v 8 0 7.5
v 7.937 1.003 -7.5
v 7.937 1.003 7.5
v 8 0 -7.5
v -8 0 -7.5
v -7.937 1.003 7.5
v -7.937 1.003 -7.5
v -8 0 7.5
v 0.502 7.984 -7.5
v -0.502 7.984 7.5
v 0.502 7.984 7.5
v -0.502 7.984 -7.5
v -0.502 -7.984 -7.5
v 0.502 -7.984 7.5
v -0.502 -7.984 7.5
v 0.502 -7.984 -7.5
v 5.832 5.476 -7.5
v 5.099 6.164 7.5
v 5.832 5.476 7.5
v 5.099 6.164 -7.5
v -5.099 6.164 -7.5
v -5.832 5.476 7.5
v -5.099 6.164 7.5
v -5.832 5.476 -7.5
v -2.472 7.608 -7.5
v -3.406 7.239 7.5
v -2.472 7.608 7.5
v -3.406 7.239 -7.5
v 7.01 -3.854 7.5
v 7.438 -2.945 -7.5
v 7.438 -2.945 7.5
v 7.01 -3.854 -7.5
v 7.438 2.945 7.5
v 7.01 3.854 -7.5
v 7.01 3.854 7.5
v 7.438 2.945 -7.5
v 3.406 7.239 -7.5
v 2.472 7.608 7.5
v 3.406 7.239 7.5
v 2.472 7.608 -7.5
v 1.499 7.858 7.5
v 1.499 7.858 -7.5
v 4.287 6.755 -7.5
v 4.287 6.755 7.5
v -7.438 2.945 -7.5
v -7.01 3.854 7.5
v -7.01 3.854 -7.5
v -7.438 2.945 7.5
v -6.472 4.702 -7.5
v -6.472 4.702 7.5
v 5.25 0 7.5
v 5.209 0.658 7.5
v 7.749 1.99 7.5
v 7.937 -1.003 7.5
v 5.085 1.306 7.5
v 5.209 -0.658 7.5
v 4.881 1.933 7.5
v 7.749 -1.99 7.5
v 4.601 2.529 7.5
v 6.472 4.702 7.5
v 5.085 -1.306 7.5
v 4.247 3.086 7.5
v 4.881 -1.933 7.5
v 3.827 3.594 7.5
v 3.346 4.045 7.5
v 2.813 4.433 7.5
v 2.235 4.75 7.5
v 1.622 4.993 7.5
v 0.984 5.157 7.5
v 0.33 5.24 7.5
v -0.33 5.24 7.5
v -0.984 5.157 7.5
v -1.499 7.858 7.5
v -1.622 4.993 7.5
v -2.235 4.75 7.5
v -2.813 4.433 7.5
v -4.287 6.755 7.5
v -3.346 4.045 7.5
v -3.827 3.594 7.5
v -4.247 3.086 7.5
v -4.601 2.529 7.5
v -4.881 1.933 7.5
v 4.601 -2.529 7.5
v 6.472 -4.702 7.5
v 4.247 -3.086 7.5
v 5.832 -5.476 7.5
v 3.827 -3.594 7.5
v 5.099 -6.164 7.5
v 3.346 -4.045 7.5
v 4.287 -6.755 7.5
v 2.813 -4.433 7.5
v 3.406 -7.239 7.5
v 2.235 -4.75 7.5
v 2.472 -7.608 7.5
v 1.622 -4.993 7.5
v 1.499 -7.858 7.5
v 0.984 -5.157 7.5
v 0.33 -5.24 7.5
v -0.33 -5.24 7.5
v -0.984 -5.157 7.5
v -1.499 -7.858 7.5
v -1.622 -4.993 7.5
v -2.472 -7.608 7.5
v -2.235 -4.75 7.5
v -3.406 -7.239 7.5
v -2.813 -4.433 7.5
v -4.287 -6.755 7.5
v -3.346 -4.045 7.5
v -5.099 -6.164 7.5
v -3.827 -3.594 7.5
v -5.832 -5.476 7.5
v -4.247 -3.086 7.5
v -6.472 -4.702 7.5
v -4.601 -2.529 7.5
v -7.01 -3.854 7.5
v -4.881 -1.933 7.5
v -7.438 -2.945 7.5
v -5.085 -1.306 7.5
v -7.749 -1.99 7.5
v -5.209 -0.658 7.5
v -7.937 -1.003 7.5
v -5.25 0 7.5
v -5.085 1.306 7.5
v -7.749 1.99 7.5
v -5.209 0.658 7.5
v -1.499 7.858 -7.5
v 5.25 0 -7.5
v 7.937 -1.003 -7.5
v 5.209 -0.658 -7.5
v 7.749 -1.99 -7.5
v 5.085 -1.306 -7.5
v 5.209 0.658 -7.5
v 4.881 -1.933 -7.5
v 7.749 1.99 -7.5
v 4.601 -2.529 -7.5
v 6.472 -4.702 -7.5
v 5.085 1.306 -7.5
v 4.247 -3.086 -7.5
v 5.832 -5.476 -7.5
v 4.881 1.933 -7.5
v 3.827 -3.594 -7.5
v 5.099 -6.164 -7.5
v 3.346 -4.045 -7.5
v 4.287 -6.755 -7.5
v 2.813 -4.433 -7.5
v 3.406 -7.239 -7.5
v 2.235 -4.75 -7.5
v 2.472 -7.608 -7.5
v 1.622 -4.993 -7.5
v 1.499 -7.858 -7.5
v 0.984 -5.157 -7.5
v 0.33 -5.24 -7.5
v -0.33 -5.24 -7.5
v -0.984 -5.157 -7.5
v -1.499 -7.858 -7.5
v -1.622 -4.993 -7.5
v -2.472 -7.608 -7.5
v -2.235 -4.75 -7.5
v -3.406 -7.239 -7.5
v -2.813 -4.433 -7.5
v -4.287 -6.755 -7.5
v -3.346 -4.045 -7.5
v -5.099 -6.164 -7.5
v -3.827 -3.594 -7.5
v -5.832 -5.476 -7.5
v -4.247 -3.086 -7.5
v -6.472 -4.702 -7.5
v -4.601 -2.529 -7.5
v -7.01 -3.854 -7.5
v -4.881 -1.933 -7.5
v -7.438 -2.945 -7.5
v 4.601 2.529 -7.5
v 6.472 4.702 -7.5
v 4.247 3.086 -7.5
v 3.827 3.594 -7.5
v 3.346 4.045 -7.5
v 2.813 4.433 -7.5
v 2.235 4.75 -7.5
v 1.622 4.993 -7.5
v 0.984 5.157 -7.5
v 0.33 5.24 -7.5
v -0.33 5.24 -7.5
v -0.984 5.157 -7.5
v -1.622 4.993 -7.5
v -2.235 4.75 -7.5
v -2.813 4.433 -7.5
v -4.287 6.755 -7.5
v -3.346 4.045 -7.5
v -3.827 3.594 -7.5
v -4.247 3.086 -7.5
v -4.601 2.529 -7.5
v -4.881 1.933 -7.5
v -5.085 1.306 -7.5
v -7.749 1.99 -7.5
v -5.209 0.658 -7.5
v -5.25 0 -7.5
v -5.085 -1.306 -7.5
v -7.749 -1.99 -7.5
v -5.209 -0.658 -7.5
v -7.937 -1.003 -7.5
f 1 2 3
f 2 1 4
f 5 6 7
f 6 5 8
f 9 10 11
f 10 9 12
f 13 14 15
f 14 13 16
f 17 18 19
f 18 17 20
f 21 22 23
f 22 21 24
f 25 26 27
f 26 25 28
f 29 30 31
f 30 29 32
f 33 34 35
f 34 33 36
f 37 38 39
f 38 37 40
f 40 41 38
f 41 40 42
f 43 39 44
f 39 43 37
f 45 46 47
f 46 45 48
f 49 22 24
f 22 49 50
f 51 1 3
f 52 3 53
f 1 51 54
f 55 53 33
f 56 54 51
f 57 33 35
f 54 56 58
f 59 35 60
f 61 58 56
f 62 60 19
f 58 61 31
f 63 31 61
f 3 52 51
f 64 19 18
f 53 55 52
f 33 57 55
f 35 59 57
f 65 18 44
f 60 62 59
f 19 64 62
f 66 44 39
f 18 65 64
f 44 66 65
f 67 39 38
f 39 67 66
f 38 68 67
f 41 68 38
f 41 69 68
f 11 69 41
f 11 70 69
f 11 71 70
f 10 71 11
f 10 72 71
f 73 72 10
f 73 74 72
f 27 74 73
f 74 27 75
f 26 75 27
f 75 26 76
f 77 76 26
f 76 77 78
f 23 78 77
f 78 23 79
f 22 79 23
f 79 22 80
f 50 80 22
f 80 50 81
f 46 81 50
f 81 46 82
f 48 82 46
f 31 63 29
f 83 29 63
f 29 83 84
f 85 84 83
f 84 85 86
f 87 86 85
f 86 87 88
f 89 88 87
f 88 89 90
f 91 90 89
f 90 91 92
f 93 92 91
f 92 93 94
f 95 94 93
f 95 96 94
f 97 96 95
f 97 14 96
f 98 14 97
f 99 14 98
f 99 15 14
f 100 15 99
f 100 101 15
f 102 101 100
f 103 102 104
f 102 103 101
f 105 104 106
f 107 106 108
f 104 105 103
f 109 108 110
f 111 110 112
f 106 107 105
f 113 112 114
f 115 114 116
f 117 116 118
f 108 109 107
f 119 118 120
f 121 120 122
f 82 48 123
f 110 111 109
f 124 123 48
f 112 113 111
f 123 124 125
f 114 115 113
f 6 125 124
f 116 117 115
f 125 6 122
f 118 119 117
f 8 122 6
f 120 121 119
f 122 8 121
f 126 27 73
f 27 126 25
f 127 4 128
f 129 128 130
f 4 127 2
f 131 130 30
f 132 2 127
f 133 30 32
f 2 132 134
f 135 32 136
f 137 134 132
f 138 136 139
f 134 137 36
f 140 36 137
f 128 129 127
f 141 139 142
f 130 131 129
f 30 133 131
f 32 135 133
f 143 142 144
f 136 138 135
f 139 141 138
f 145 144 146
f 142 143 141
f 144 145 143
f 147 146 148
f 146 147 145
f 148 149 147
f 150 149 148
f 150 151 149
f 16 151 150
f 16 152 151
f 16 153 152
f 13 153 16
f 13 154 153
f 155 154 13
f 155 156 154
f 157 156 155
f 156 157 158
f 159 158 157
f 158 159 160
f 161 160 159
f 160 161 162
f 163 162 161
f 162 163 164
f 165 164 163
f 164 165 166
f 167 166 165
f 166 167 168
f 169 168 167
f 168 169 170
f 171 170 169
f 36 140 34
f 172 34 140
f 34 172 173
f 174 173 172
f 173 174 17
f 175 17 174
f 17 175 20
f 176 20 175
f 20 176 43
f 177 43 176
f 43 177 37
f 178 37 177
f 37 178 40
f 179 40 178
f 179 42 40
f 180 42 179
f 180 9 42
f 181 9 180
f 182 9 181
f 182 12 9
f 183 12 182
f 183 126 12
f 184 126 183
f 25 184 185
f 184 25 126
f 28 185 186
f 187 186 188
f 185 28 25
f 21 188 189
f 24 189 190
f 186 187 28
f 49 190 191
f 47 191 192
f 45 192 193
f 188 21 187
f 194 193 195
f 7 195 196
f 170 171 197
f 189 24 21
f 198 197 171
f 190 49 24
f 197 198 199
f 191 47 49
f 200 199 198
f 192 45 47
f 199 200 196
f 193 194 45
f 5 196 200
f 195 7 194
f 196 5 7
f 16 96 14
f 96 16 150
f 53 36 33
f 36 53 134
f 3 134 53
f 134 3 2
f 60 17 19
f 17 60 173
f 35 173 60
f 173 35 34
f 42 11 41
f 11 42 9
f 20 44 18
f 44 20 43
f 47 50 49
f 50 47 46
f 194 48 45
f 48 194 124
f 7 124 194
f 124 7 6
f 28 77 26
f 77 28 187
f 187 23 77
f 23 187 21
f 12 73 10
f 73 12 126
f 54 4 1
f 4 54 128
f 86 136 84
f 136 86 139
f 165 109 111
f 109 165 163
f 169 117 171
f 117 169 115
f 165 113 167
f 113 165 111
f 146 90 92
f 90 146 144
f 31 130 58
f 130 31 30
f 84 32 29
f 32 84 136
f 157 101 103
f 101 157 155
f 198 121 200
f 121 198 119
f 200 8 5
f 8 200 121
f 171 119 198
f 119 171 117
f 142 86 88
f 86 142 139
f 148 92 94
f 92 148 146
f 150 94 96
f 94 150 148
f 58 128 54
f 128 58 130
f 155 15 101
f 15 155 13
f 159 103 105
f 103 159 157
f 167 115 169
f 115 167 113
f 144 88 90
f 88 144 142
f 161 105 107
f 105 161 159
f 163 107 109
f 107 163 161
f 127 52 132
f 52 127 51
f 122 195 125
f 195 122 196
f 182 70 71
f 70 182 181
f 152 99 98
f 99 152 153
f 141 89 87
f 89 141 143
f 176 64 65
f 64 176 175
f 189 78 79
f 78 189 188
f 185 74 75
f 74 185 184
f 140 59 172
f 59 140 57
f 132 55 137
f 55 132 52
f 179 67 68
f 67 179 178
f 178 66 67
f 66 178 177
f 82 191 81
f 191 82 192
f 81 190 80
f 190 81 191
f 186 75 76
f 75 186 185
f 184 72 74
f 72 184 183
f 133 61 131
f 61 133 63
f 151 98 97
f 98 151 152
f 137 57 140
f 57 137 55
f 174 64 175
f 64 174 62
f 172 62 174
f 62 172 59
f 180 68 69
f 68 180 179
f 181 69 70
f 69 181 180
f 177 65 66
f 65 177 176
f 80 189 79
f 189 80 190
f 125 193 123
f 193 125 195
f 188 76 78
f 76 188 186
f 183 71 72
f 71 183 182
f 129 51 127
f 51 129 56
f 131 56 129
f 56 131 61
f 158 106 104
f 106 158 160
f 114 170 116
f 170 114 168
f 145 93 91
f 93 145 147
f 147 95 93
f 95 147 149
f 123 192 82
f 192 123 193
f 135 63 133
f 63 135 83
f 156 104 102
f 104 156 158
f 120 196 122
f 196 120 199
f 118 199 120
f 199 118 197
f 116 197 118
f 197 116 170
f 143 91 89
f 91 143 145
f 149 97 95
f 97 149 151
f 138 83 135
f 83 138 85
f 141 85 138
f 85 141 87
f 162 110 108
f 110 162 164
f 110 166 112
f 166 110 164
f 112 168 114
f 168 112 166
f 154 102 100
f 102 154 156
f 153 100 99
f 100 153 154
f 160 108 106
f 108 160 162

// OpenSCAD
$fn = 50;


difference() {
	union() {
		translate(v = [0, 0, -7.5000000000]) {
			cylinder(h = 15, r = 8.0000000000);
		}
	}
	union() {
		translate(v = [0, 0, -100.0000000000]) {
			cylinder(h = 200, r = 5.2500000000);
		}
	}
}
